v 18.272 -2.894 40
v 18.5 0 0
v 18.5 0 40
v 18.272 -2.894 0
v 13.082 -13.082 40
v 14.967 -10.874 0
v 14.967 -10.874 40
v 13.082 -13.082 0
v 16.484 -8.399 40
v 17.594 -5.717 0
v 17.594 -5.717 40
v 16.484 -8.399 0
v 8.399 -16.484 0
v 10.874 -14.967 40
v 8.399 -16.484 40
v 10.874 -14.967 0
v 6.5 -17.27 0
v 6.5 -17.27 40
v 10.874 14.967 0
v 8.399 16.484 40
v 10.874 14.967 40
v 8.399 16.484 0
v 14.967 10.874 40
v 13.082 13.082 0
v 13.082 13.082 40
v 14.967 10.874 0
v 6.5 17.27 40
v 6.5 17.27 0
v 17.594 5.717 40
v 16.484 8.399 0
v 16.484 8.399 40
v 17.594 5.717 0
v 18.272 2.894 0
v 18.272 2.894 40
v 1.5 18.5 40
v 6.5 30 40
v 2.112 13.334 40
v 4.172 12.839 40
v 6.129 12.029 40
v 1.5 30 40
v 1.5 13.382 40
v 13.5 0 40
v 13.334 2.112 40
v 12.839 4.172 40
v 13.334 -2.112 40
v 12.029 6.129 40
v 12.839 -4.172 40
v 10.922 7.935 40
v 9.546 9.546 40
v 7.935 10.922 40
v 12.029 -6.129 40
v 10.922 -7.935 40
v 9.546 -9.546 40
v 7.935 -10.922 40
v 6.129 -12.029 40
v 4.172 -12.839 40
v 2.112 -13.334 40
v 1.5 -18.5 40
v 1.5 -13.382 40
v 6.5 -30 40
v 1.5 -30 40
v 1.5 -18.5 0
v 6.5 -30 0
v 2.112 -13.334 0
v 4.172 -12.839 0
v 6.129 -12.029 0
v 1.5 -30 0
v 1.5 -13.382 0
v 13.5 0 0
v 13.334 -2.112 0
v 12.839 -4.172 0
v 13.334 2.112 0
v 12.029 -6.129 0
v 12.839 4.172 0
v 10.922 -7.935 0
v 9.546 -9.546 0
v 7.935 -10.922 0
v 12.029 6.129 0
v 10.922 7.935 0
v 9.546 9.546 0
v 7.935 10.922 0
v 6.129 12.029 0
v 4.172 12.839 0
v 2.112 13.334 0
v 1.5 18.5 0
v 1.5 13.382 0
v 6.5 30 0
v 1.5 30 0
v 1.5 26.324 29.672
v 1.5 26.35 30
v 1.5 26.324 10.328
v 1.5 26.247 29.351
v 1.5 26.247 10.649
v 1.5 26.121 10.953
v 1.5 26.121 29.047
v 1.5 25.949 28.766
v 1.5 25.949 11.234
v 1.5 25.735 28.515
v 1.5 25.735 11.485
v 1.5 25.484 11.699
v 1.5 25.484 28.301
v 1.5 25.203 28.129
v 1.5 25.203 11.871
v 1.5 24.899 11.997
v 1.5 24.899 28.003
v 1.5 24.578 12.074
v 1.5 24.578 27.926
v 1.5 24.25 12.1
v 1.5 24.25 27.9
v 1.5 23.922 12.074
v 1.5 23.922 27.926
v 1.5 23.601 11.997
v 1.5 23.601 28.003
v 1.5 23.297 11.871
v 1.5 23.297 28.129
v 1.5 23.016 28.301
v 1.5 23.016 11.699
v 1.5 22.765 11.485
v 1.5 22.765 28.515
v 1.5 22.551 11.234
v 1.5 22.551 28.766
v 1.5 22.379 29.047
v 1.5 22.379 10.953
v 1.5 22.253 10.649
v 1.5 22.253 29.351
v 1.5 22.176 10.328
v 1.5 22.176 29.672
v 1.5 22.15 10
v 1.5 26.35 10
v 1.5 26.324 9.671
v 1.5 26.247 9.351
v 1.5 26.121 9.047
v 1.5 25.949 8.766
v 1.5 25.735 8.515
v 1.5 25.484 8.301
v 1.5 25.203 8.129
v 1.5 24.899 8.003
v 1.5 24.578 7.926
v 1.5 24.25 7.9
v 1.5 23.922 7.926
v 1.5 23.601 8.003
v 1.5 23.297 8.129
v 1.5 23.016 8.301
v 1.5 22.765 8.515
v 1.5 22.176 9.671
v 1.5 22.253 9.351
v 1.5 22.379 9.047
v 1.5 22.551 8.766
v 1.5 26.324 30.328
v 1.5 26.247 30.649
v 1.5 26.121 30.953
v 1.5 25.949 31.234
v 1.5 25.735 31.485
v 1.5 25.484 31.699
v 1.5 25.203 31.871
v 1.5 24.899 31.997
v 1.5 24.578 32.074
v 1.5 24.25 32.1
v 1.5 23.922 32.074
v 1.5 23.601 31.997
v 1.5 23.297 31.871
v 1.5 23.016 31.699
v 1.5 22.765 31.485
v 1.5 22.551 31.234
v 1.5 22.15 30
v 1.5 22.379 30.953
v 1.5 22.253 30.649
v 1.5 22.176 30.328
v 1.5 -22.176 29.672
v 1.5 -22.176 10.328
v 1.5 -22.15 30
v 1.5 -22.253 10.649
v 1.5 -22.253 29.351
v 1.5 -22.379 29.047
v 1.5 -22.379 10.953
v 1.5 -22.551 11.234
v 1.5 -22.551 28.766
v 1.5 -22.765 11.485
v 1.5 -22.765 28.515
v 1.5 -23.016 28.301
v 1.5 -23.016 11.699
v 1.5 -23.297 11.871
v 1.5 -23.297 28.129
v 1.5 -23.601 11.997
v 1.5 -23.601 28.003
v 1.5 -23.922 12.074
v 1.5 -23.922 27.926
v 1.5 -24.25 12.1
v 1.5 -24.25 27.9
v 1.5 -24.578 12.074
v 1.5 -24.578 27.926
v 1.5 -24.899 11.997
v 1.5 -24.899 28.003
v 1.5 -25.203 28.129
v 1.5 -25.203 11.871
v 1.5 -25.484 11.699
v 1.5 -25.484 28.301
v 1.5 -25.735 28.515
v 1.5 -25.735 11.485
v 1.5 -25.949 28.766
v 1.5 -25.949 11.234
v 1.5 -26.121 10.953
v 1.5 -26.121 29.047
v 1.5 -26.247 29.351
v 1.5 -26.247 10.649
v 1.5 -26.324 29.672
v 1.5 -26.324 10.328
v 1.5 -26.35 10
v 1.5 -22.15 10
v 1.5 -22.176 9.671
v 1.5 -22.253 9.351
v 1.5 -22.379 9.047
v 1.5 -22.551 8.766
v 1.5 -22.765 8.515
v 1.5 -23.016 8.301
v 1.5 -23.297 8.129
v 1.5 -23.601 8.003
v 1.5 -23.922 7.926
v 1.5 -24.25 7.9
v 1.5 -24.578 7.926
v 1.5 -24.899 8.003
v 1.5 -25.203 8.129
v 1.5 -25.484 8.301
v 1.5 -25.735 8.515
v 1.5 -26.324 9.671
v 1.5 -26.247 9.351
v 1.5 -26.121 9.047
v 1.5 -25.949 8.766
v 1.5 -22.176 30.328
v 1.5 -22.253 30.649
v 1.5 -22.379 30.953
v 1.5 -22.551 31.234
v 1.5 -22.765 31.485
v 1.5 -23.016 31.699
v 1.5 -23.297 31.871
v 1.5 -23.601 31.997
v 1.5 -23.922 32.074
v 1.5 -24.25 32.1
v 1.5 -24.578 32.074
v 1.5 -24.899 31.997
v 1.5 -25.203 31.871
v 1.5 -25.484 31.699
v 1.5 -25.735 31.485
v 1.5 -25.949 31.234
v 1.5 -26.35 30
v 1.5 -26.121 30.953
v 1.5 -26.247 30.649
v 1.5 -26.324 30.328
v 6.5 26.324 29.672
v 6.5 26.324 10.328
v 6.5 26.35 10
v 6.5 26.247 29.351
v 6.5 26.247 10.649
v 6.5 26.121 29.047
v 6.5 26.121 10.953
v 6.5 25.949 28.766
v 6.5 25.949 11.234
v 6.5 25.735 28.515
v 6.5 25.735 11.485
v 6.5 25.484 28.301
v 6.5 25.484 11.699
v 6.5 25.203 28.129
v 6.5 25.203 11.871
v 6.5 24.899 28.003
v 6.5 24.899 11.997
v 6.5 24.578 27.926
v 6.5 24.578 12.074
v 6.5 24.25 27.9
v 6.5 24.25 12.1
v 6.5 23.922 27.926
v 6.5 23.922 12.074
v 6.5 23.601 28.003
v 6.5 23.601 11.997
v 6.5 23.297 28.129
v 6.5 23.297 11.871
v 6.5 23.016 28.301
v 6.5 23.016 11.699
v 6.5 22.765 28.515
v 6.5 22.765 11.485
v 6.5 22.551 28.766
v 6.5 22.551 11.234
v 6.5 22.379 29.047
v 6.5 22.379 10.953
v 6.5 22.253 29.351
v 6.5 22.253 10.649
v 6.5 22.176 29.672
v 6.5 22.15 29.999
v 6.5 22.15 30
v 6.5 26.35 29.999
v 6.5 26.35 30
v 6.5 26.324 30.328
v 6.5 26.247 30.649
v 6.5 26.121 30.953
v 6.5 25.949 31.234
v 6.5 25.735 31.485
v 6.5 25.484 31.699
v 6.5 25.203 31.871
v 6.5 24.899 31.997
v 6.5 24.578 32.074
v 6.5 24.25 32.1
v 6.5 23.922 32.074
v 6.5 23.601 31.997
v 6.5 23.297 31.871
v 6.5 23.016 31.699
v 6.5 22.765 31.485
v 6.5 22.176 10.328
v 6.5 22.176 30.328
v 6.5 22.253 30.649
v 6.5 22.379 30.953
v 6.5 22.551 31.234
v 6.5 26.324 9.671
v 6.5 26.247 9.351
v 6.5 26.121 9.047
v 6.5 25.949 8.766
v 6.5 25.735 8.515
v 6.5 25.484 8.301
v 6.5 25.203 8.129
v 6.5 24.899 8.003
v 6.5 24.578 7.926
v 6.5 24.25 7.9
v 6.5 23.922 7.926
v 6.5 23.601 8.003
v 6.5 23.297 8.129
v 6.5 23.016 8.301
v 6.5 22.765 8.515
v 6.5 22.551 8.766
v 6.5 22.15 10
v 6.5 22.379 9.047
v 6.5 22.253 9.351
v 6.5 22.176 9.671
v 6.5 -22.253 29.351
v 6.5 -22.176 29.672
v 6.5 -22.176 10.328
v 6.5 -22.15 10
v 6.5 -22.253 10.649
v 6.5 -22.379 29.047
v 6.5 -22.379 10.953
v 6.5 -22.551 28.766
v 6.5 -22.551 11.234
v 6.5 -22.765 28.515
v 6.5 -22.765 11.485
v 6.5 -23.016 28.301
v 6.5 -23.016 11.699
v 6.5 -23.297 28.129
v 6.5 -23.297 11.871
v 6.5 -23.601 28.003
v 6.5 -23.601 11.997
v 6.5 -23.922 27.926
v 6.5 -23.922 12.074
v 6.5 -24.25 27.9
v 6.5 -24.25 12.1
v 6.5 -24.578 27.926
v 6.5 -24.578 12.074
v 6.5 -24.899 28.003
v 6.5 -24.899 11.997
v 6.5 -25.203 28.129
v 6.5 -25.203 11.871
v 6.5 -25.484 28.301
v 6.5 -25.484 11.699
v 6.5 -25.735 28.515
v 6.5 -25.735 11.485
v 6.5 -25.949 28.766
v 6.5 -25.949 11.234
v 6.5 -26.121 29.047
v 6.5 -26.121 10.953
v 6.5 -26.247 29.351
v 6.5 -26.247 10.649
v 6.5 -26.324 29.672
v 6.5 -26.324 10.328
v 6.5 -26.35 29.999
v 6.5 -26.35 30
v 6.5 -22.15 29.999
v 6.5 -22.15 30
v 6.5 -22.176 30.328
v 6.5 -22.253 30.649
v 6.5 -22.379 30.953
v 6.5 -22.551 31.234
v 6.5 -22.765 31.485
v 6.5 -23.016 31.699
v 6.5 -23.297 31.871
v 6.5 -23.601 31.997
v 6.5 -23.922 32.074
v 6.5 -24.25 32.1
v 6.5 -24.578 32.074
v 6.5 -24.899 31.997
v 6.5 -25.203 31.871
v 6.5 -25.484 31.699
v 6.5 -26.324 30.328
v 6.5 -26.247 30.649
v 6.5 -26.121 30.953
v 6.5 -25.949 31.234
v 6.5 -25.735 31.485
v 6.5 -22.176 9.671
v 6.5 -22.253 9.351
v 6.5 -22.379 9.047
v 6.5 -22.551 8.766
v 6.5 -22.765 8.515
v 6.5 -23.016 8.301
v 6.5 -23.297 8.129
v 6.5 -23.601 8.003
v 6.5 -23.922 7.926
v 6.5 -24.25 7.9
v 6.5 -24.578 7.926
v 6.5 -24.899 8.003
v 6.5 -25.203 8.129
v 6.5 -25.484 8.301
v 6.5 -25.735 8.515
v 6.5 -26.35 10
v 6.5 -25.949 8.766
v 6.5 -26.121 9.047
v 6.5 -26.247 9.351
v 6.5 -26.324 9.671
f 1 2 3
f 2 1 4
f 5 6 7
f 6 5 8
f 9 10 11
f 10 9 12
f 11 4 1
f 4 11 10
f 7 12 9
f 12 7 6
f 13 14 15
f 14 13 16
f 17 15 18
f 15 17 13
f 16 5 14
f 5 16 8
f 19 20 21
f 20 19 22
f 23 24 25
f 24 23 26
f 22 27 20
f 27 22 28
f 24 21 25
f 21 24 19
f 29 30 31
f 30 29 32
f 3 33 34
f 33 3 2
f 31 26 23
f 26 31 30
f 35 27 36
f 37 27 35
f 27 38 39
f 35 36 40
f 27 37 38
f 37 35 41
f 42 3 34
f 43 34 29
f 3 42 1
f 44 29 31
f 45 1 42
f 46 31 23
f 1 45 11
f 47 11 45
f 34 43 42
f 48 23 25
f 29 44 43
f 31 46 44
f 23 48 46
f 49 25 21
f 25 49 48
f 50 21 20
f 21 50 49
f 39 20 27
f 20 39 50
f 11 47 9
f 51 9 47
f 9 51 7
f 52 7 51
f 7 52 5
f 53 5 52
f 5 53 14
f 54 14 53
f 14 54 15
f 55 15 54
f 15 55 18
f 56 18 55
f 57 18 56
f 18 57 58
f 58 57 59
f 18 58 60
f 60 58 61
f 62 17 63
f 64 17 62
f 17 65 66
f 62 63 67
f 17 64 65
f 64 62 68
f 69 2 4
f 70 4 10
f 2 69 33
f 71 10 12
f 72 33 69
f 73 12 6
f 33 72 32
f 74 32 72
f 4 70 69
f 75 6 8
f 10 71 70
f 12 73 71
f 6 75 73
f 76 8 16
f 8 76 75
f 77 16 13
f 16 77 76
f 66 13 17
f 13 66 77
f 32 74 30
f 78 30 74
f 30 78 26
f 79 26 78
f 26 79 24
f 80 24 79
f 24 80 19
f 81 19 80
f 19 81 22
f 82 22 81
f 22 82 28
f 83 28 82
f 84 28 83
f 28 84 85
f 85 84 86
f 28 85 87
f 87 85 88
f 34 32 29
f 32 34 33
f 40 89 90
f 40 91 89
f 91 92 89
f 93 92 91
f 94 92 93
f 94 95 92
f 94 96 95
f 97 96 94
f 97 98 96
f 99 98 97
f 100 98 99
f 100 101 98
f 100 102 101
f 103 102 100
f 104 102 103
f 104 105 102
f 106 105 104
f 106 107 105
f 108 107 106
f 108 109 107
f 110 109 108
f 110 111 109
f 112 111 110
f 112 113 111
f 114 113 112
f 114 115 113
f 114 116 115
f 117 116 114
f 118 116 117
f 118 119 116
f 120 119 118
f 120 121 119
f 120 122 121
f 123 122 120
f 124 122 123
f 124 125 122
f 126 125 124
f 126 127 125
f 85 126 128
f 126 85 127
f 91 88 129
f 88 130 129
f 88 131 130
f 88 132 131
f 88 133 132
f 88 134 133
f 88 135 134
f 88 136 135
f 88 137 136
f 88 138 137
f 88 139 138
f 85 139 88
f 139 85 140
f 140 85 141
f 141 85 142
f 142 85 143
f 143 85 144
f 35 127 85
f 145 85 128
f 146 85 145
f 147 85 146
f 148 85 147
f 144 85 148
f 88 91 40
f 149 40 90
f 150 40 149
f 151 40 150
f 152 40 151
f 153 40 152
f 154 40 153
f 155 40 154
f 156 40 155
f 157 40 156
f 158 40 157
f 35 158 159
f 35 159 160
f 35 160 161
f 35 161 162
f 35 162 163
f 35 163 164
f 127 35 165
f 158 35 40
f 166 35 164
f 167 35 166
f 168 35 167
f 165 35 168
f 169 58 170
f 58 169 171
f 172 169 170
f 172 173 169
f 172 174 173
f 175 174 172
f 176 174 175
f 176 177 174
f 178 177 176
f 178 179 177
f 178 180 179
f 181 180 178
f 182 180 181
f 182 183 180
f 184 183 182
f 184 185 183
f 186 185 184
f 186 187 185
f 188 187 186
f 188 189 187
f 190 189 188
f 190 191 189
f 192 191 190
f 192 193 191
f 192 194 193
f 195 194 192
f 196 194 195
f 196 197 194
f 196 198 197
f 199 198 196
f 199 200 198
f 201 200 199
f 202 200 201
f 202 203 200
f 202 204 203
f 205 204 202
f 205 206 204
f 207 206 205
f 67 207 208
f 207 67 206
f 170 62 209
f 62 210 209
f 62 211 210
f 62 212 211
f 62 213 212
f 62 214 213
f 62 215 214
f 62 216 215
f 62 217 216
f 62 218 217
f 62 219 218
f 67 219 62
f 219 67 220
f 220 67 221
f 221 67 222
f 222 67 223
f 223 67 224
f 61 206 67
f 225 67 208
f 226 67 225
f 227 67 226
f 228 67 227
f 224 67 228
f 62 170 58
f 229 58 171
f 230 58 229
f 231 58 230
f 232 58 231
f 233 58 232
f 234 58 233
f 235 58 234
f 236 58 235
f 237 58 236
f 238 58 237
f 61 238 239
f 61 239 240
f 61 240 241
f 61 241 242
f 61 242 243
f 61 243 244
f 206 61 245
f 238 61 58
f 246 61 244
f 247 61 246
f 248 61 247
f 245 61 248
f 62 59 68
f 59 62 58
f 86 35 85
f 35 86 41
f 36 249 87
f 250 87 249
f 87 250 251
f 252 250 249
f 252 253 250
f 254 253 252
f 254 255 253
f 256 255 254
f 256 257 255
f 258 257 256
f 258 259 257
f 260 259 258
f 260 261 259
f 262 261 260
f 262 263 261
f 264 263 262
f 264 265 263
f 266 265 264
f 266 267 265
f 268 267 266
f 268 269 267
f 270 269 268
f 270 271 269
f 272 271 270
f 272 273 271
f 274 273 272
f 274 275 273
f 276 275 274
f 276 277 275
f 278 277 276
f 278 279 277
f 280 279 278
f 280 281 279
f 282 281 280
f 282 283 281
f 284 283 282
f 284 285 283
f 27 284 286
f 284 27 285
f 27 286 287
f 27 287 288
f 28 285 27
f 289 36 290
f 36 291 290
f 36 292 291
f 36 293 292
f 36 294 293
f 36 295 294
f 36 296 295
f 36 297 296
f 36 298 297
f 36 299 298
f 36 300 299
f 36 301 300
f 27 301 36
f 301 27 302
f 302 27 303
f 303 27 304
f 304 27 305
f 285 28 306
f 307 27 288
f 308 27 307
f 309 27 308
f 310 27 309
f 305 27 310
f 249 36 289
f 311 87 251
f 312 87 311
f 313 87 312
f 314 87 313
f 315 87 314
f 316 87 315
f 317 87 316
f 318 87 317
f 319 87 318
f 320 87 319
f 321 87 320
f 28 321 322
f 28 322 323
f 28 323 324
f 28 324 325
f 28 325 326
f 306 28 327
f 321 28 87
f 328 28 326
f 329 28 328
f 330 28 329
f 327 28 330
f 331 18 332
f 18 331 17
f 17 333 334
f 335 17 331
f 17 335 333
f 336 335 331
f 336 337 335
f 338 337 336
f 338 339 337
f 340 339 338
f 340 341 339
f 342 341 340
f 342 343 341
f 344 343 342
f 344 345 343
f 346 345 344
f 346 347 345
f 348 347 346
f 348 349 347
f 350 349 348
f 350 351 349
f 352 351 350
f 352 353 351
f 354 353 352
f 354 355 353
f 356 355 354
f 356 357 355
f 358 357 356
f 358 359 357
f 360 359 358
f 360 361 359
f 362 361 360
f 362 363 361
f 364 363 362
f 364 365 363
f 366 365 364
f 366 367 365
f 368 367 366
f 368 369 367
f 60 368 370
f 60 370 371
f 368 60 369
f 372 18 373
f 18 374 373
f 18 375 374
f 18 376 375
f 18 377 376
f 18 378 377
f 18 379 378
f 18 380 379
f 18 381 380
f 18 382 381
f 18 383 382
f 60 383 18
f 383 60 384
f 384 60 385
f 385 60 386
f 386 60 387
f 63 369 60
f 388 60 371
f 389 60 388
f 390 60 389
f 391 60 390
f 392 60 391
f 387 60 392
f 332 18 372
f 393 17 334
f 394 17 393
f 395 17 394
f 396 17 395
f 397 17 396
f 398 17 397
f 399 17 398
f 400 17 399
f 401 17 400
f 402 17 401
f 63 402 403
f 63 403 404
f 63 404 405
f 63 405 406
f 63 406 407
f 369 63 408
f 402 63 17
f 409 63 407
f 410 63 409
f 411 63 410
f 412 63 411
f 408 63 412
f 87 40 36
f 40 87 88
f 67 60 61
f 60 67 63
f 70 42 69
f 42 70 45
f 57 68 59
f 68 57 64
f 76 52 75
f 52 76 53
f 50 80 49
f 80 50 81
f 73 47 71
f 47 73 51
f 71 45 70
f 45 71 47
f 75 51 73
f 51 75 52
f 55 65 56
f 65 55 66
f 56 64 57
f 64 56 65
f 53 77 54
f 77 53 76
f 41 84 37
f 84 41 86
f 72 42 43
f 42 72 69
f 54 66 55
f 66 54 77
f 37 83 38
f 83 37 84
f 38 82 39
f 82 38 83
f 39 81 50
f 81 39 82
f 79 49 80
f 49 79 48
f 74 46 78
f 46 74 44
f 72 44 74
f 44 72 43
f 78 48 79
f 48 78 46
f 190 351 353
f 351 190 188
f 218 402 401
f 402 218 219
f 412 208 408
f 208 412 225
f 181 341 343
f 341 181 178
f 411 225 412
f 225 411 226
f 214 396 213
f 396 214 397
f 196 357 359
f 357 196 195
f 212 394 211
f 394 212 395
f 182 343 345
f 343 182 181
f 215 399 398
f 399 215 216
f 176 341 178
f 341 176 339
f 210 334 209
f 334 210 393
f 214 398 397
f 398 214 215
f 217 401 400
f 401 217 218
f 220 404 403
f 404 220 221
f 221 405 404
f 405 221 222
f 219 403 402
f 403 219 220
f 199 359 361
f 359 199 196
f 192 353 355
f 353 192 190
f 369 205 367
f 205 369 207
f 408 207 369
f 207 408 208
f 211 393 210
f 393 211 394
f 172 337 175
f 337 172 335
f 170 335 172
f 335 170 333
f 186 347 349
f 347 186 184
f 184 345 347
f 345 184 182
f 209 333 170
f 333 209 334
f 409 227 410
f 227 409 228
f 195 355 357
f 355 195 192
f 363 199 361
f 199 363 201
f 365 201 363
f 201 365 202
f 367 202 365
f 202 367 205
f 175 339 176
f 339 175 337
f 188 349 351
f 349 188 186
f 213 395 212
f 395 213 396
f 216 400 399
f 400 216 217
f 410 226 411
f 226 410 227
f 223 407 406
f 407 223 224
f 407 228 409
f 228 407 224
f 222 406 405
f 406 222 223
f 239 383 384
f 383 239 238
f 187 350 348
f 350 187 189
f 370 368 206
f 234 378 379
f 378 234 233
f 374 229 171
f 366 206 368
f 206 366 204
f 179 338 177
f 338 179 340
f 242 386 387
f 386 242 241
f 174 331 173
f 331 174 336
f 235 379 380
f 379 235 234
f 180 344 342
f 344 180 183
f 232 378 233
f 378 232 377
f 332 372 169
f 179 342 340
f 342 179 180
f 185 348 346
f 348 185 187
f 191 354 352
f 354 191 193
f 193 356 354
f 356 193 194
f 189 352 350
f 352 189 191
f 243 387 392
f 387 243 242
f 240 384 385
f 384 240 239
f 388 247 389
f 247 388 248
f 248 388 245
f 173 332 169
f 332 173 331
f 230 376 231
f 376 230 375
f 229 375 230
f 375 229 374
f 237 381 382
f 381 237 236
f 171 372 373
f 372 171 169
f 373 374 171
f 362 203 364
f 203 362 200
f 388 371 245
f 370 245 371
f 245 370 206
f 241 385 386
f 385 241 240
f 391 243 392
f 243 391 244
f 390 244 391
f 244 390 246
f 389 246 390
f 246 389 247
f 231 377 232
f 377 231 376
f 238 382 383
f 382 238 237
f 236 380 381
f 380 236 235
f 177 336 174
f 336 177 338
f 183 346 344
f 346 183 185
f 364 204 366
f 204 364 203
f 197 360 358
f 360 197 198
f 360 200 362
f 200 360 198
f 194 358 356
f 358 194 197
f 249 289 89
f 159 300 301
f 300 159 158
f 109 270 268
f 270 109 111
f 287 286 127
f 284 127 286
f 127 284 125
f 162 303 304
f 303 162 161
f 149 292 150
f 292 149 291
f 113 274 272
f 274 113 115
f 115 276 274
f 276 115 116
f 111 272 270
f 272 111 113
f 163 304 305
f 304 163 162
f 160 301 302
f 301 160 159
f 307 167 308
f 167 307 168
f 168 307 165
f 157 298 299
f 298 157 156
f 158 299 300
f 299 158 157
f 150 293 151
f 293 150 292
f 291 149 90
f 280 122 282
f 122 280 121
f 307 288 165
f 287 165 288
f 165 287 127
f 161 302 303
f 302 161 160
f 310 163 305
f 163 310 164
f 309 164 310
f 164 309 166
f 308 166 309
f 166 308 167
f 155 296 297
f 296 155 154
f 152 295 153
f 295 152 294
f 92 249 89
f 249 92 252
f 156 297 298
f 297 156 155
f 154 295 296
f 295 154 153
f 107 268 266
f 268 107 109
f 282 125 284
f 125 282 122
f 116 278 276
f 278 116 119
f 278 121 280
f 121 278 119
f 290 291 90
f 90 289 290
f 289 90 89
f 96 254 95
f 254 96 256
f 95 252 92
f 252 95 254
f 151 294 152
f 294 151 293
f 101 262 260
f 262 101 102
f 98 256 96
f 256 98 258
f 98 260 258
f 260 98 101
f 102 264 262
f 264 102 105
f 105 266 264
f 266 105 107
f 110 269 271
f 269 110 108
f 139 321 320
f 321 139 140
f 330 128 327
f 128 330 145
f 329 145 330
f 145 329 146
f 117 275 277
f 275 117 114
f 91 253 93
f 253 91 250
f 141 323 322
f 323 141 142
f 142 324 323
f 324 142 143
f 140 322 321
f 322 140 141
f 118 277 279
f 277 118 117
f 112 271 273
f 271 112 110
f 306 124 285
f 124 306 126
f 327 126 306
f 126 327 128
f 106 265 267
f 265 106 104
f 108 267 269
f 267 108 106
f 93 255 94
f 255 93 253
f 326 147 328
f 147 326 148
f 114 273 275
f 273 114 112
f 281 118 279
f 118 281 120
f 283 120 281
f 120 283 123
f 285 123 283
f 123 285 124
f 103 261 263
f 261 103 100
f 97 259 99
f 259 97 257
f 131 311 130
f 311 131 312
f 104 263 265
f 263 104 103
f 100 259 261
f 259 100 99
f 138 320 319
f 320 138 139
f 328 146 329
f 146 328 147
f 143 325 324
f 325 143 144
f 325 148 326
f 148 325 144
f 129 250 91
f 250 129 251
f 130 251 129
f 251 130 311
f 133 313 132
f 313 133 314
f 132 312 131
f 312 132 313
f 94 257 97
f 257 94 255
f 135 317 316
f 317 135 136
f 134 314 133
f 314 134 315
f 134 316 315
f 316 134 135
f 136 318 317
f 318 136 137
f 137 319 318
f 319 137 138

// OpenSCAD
// file: ../SRC/AWSBOX01A_D02_2.scad
$fn=40; // model faces resolution.


//WINDGAUGE02A_D01 //uchyt velky
D01_material_pod_zavitem=5;
D01_material_za_zavitem=3;
D01_material_pred_zavitem=2;
D01_delka_tyce=60;
D01_sirka_tyce=10;

//WINDGAUGE02A_D02 //uchyt na sloup
D02_sila_materialu=5;
D02_vyska_uchytky=40;
D02_prumer_obruby=27; //3/4 trubka
D02_delka_celeho_uchytu=60;
D02_dotahova_vzdalenost=1.5;
D02_prumer_uchytneho_sroubu=4.2;
D02_sirka_matky=9.2; //pro M4
D02_vyska_matky=3;


//Drzak na sloup - cast bez drzaku anemometru
module WINDGAUGE02A_D02(D02_sila_materialu){
	
difference()
    {
    union()
        {
        //základní válec
        cylinder(h=D02_vyska_uchytky,r=(D02_prumer_obruby+2*D02_sila_materialu)/2,center=true);
		//úchytové plošky		
        translate([D02_dotahova_vzdalenost+D02_sila_materialu/2,0,0]){cube([D02_sila_materialu,D02_delka_celeho_uchytu,D02_vyska_uchytky],center=true);}
		}
    
    //válec na odečet
    cylinder(h=D02_vyska_uchytky+0.01,r=D02_prumer_obruby/2,center=true);     
	        
    //kvádr na odecet
	translate([D02_dotahova_vzdalenost-(D02_prumer_obruby+2*D02_sila_materialu)/2,0,0]){cube([D02_prumer_obruby+2*D02_sila_materialu,D02_prumer_obruby+2*D02_sila_materialu,D02_vyska_uchytky+0.01],center=true);}
		
	//otvory na sroub
	translate([D02_dotahova_vzdalenost,(D02_delka_celeho_uchytu/2-D02_prumer_obruby/2-D02_sila_materialu)/2+D02_prumer_obruby/2+D02_sila_materialu,D02_vyska_uchytky/4]){rotate([0,90,0]){cylinder(h=D02_sila_materialu+0.01,r=D02_prumer_uchytneho_sroubu/2);}}
    
     //drzak matky
    translate([D02_dotahova_vzdalenost+D02_sila_materialu-D02_vyska_matky,(D02_delka_celeho_uchytu/2-D02_prumer_obruby/2-D02_sila_materialu)/2+D02_prumer_obruby/2+D02_sila_materialu,D02_vyska_uchytky/4]){rotate([0,90,0]){ cylinder (h = D02_vyska_matky+0.01, r= (D02_sirka_matky+0.2)/2, $fn=6);}}
   
     
        
    translate([D02_dotahova_vzdalenost,(D02_delka_celeho_uchytu/2-D02_prumer_obruby/2-D02_sila_materialu)/2+D02_prumer_obruby/2+D02_sila_materialu,-D02_vyska_uchytky/4]){rotate([0,90,0]){cylinder(h=D02_sila_materialu+0.01,r=D02_prumer_uchytneho_sroubu/2);}}
    
     //drzak matky
    translate([D02_dotahova_vzdalenost+D02_sila_materialu-D02_vyska_matky,(D02_delka_celeho_uchytu/2-D02_prumer_obruby/2-D02_sila_materialu)/2+D02_prumer_obruby/2+D02_sila_materialu,-D02_vyska_uchytky/4]){rotate([0,90,0]){ cylinder (h = D02_vyska_matky+0.01, r= (D02_sirka_matky+0.2)/2, $fn=6);}}
        
	translate([D02_dotahova_vzdalenost,-((D02_delka_celeho_uchytu/2-D02_prumer_obruby/2-D02_sila_materialu)/2+D02_prumer_obruby/2+D02_sila_materialu),-D02_vyska_uchytky/4]){rotate([0,90,0]){cylinder(h=D02_sila_materialu+0.01,r=D02_prumer_uchytneho_sroubu/2);}}
    
     //drzak matky
    translate([D02_dotahova_vzdalenost+D02_sila_materialu-D02_vyska_matky,-((D02_delka_celeho_uchytu/2-D02_prumer_obruby/2-D02_sila_materialu)/2+D02_prumer_obruby/2+D02_sila_materialu),-D02_vyska_uchytky/4]){rotate([0,90,0]){ cylinder (h = D02_vyska_matky+0.01, r= (D02_sirka_matky+0.2)/2, $fn=6);}}

    translate([D02_dotahova_vzdalenost,-((D02_delka_celeho_uchytu/2-D02_prumer_obruby/2-D02_sila_materialu)/2+D02_prumer_obruby/2+D02_sila_materialu),D02_vyska_uchytky/4]){rotate([0,90,0]){cylinder(h=D02_sila_materialu+0.01,r=D02_prumer_uchytneho_sroubu/2);}}	
    
     //drzak matky
    translate([D02_dotahova_vzdalenost+D02_sila_materialu-D02_vyska_matky,-((D02_delka_celeho_uchytu/2-D02_prumer_obruby/2-D02_sila_materialu)/2+D02_prumer_obruby/2+D02_sila_materialu),D02_vyska_uchytky/4]){rotate([0,90,0]){ cylinder (h = D02_vyska_matky+0.01, r= (D02_sirka_matky+0.2)/2, $fn=6);}}
	
    }
}

module WINDGAUGE02A_D02_2(){
	
difference()
    {
    union()
        {
        //základní válec
        cylinder(h=D02_vyska_uchytky,r=(D02_prumer_obruby+2*D02_sila_materialu)/2,center=true);
		//úchytové plošky		
        translate([D02_dotahova_vzdalenost+D02_sila_materialu/2,0,0]){cube([D02_sila_materialu,D02_delka_celeho_uchytu,D02_vyska_uchytky],center=true);}
		}
    
    //válec na odečet
    cylinder(h=D02_vyska_uchytky+0.01,r=D02_prumer_obruby/2,center=true);     
	        
    //kvádr na odecet
	translate([D02_dotahova_vzdalenost-(D02_prumer_obruby+2*D02_sila_materialu)/2,0,0]){cube([D02_prumer_obruby+2*D02_sila_materialu,D02_prumer_obruby+2*D02_sila_materialu,D02_vyska_uchytky+0.01],center=true);}
		
	//otvory na sroub
	translate([D02_dotahova_vzdalenost,(D02_delka_celeho_uchytu/2-D02_prumer_obruby/2-D02_sila_materialu)/2+D02_prumer_obruby/2+D02_sila_materialu,D02_vyska_uchytky/4]){rotate([0,90,0]){cylinder(h=D02_sila_materialu+0.01,r=D02_prumer_uchytneho_sroubu/2);}}
    
    
   
     
        
    translate([D02_dotahova_vzdalenost,(D02_delka_celeho_uchytu/2-D02_prumer_obruby/2-D02_sila_materialu)/2+D02_prumer_obruby/2+D02_sila_materialu,-D02_vyska_uchytky/4]){rotate([0,90,0]){cylinder(h=D02_sila_materialu+0.01,r=D02_prumer_uchytneho_sroubu/2);}}
    
     
        
	translate([D02_dotahova_vzdalenost,-((D02_delka_celeho_uchytu/2-D02_prumer_obruby/2-D02_sila_materialu)/2+D02_prumer_obruby/2+D02_sila_materialu),-D02_vyska_uchytky/4]){rotate([0,90,0]){cylinder(h=D02_sila_materialu+0.01,r=D02_prumer_uchytneho_sroubu/2);}}
    
    

    translate([D02_dotahova_vzdalenost,-((D02_delka_celeho_uchytu/2-D02_prumer_obruby/2-D02_sila_materialu)/2+D02_prumer_obruby/2+D02_sila_materialu),D02_vyska_uchytky/4]){rotate([0,90,0]){cylinder(h=D02_sila_materialu+0.01,r=D02_prumer_uchytneho_sroubu/2);}}	
    
    
	
    }
}


//WINDGAUGE02A_D02();
// file: ../configuration.scad
$fn=40; // model faces resolution.

//OBECNE PARAMETRY 
//----------------------------------------------------------------
//----------------------------------------------------------------


//AWSCREEN01A_D03 -stredni díl
D03_vyska_zavitu=5;
D03_tolerance_zavitu=0.75; //tolerance s poloměru
D03_material_za_zavitem=2;
D03_material_za_zavitem_pridani=1.5; //tímto se pridává materiál za horním závitem 
D03_polomer_zavitu=32.5;
D03_polomer_stitu=47.5;
D03_tloustka_materialu=1.8;
D03_vyska_stitu=20;
D03_pocet_vyztuh=3;
screen_bevel = 20;
PI=3.141592;

//AWSCREEN01A_D04
D04_sila_materialu_na_konektor=3;
D04_konenektor_x=12.3;
D04_konenektor_y=19;
D04_konenektor_z=5; //vyska krytu
D04_vyska_drzaku_senzoru=28;


//AWSCREEN01A_D05 //uchyt velky
D01_material_pod_zavitem=5;
D01_material_za_zavitem=3;
D01_material_pred_zavitem=2;
D01_delka_tyce=50;
D01_sirka_tyce=10;
S01_vyska_komponentu_na_lozisko=D03_vyska_zavitu;
S01_prumer_zavitu=2*D03_polomer_zavitu;


//AWSCREEN01A_D06 //uchyt na sloup
D02_sila_materialu=4;
D02_vyska_uchytky=40;
D02_prumer_obruby=27; 

//27 mm - 3/4 trubka
D02_delka_celeho_uchytu=60;
D02_dotahova_vzdalenost=1.5;
D02_prumer_uchytneho_sroubu=4.2;
D02_sirka_matky=9.1; //pro M4
D02_vyska_matky=3;
// main file
$fn=100; // model faces resolution.
include <../configuration.scad>
use <../SRC/AWSBOX01A_D02_2.scad>

rotate([0, 0, 0])
            
 
translate([0,0,D02_vyska_uchytky/2])
        rotate([180,0,0])
     WINDGAUGE02A_D02_2(6);

            
